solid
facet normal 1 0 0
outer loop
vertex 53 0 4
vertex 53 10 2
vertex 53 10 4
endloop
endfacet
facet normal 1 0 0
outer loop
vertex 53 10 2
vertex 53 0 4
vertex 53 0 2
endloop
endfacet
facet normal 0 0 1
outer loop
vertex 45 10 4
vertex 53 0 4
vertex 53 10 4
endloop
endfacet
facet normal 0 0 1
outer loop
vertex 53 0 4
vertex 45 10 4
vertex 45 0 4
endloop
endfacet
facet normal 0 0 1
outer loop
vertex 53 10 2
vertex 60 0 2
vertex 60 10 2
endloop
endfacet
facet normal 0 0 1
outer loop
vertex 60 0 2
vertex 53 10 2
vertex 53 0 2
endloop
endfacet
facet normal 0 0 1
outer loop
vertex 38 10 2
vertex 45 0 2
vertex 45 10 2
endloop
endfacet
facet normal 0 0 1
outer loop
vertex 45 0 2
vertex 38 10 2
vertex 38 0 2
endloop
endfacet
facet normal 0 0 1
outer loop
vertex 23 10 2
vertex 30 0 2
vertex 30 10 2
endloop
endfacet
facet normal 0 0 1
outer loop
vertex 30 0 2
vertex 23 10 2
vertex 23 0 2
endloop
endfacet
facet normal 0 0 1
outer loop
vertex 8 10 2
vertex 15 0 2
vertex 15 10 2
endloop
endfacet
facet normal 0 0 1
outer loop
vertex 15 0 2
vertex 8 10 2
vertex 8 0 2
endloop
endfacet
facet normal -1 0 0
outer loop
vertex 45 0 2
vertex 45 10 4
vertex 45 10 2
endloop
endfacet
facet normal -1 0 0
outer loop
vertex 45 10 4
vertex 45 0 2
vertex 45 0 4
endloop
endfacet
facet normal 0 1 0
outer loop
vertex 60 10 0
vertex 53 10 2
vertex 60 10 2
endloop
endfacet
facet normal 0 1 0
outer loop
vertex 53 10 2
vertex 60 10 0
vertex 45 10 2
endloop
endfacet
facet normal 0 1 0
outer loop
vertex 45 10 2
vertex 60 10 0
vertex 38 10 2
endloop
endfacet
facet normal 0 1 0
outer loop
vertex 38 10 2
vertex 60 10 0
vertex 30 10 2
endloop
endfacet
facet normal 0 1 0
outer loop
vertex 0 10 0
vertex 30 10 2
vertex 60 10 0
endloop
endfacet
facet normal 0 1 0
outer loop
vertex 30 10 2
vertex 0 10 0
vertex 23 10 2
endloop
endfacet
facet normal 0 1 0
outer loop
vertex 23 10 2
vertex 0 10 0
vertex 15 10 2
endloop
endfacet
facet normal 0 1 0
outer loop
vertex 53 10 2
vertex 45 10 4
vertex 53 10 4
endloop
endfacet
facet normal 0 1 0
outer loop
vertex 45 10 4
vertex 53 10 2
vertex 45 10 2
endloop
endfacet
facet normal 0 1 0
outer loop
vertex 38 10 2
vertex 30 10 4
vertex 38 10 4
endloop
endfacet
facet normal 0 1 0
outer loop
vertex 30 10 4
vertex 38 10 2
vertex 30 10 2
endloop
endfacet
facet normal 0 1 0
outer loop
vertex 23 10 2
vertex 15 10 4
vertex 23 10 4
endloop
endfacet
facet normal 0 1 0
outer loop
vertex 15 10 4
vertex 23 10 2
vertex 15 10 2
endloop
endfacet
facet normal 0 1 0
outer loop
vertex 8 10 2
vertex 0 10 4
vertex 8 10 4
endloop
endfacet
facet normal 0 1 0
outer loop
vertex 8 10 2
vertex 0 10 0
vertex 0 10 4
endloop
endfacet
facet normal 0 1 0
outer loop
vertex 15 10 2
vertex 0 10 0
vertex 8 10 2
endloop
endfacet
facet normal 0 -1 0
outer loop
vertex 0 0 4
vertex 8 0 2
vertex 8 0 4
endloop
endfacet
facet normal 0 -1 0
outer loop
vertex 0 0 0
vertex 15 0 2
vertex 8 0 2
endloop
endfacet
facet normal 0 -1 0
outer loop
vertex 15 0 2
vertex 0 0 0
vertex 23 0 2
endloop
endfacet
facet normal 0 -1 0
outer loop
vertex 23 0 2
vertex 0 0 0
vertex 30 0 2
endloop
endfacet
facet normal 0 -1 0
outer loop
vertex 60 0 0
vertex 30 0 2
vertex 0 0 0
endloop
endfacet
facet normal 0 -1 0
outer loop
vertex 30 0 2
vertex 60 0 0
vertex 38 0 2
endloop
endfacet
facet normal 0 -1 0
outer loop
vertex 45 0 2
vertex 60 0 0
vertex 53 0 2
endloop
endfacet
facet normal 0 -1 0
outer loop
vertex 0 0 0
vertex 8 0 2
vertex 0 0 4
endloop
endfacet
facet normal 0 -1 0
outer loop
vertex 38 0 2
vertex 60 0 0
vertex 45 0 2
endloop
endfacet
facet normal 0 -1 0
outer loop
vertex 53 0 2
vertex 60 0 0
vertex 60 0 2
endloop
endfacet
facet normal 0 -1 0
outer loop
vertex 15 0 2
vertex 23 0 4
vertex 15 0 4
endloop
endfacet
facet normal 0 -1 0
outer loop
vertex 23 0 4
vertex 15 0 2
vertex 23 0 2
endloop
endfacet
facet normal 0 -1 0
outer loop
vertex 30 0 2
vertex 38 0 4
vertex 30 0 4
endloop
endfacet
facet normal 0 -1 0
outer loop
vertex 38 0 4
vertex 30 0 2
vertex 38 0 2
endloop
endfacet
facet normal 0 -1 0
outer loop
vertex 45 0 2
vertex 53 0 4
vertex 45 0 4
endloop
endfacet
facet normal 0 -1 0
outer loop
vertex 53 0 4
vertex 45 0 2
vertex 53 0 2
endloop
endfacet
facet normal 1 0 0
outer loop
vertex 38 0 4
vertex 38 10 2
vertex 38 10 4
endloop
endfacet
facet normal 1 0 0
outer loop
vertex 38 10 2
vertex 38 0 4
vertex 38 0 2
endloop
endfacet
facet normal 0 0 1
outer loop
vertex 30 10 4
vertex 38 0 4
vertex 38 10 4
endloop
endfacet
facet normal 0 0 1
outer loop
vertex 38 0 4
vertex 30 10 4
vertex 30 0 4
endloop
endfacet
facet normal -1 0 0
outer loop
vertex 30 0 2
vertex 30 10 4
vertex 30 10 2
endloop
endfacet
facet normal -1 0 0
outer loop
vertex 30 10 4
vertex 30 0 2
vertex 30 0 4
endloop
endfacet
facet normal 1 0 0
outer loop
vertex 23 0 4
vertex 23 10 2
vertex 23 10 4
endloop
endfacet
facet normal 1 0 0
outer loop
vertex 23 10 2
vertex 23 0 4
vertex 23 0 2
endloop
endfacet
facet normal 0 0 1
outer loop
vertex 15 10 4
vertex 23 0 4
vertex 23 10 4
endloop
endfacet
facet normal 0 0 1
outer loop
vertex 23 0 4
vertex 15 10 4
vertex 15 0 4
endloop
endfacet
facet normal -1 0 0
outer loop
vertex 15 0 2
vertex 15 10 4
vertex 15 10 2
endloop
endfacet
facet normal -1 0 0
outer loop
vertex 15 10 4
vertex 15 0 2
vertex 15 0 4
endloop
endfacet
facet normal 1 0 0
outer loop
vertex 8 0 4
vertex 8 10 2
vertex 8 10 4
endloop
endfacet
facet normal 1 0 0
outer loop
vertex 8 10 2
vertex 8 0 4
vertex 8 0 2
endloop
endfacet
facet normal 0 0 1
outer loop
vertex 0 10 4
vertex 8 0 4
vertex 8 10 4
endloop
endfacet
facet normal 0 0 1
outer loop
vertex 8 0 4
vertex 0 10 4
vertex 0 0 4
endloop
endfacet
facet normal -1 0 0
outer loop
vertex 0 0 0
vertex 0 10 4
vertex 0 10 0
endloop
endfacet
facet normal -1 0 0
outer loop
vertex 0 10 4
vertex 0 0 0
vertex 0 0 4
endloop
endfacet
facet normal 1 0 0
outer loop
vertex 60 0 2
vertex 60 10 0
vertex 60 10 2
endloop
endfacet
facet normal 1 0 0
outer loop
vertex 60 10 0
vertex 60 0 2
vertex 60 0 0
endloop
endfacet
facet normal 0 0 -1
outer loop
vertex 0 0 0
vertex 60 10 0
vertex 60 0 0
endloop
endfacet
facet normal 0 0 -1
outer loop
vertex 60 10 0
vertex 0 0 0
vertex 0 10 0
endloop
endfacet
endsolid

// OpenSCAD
// Parameters for the teeth_plate
plate_length = 60;  // Length of the rectangular plate
plate_width = 10;   // Width of the rectangular plate
plate_thickness = 2; // Thickness of the rectangular plate
tooth_width = 8;    // Width of each tooth
tooth_height = 10;  // Height of each tooth
tooth_spacing = 7;  // Spacing between the teeth
num_teeth = 4;      // Number of teeth

module teeth_plate() {
    // Base plate
    cube([plate_length, plate_width, plate_thickness]);

    // Add teeth
    for (i = [0:num_teeth-1]) {
        translate([plate_length - (tooth_width + tooth_spacing) * (i + 1), 0, plate_thickness])
            cube([tooth_width, tooth_height, plate_thickness]);
    }
}

// Render the teeth_plate
teeth_plate();
